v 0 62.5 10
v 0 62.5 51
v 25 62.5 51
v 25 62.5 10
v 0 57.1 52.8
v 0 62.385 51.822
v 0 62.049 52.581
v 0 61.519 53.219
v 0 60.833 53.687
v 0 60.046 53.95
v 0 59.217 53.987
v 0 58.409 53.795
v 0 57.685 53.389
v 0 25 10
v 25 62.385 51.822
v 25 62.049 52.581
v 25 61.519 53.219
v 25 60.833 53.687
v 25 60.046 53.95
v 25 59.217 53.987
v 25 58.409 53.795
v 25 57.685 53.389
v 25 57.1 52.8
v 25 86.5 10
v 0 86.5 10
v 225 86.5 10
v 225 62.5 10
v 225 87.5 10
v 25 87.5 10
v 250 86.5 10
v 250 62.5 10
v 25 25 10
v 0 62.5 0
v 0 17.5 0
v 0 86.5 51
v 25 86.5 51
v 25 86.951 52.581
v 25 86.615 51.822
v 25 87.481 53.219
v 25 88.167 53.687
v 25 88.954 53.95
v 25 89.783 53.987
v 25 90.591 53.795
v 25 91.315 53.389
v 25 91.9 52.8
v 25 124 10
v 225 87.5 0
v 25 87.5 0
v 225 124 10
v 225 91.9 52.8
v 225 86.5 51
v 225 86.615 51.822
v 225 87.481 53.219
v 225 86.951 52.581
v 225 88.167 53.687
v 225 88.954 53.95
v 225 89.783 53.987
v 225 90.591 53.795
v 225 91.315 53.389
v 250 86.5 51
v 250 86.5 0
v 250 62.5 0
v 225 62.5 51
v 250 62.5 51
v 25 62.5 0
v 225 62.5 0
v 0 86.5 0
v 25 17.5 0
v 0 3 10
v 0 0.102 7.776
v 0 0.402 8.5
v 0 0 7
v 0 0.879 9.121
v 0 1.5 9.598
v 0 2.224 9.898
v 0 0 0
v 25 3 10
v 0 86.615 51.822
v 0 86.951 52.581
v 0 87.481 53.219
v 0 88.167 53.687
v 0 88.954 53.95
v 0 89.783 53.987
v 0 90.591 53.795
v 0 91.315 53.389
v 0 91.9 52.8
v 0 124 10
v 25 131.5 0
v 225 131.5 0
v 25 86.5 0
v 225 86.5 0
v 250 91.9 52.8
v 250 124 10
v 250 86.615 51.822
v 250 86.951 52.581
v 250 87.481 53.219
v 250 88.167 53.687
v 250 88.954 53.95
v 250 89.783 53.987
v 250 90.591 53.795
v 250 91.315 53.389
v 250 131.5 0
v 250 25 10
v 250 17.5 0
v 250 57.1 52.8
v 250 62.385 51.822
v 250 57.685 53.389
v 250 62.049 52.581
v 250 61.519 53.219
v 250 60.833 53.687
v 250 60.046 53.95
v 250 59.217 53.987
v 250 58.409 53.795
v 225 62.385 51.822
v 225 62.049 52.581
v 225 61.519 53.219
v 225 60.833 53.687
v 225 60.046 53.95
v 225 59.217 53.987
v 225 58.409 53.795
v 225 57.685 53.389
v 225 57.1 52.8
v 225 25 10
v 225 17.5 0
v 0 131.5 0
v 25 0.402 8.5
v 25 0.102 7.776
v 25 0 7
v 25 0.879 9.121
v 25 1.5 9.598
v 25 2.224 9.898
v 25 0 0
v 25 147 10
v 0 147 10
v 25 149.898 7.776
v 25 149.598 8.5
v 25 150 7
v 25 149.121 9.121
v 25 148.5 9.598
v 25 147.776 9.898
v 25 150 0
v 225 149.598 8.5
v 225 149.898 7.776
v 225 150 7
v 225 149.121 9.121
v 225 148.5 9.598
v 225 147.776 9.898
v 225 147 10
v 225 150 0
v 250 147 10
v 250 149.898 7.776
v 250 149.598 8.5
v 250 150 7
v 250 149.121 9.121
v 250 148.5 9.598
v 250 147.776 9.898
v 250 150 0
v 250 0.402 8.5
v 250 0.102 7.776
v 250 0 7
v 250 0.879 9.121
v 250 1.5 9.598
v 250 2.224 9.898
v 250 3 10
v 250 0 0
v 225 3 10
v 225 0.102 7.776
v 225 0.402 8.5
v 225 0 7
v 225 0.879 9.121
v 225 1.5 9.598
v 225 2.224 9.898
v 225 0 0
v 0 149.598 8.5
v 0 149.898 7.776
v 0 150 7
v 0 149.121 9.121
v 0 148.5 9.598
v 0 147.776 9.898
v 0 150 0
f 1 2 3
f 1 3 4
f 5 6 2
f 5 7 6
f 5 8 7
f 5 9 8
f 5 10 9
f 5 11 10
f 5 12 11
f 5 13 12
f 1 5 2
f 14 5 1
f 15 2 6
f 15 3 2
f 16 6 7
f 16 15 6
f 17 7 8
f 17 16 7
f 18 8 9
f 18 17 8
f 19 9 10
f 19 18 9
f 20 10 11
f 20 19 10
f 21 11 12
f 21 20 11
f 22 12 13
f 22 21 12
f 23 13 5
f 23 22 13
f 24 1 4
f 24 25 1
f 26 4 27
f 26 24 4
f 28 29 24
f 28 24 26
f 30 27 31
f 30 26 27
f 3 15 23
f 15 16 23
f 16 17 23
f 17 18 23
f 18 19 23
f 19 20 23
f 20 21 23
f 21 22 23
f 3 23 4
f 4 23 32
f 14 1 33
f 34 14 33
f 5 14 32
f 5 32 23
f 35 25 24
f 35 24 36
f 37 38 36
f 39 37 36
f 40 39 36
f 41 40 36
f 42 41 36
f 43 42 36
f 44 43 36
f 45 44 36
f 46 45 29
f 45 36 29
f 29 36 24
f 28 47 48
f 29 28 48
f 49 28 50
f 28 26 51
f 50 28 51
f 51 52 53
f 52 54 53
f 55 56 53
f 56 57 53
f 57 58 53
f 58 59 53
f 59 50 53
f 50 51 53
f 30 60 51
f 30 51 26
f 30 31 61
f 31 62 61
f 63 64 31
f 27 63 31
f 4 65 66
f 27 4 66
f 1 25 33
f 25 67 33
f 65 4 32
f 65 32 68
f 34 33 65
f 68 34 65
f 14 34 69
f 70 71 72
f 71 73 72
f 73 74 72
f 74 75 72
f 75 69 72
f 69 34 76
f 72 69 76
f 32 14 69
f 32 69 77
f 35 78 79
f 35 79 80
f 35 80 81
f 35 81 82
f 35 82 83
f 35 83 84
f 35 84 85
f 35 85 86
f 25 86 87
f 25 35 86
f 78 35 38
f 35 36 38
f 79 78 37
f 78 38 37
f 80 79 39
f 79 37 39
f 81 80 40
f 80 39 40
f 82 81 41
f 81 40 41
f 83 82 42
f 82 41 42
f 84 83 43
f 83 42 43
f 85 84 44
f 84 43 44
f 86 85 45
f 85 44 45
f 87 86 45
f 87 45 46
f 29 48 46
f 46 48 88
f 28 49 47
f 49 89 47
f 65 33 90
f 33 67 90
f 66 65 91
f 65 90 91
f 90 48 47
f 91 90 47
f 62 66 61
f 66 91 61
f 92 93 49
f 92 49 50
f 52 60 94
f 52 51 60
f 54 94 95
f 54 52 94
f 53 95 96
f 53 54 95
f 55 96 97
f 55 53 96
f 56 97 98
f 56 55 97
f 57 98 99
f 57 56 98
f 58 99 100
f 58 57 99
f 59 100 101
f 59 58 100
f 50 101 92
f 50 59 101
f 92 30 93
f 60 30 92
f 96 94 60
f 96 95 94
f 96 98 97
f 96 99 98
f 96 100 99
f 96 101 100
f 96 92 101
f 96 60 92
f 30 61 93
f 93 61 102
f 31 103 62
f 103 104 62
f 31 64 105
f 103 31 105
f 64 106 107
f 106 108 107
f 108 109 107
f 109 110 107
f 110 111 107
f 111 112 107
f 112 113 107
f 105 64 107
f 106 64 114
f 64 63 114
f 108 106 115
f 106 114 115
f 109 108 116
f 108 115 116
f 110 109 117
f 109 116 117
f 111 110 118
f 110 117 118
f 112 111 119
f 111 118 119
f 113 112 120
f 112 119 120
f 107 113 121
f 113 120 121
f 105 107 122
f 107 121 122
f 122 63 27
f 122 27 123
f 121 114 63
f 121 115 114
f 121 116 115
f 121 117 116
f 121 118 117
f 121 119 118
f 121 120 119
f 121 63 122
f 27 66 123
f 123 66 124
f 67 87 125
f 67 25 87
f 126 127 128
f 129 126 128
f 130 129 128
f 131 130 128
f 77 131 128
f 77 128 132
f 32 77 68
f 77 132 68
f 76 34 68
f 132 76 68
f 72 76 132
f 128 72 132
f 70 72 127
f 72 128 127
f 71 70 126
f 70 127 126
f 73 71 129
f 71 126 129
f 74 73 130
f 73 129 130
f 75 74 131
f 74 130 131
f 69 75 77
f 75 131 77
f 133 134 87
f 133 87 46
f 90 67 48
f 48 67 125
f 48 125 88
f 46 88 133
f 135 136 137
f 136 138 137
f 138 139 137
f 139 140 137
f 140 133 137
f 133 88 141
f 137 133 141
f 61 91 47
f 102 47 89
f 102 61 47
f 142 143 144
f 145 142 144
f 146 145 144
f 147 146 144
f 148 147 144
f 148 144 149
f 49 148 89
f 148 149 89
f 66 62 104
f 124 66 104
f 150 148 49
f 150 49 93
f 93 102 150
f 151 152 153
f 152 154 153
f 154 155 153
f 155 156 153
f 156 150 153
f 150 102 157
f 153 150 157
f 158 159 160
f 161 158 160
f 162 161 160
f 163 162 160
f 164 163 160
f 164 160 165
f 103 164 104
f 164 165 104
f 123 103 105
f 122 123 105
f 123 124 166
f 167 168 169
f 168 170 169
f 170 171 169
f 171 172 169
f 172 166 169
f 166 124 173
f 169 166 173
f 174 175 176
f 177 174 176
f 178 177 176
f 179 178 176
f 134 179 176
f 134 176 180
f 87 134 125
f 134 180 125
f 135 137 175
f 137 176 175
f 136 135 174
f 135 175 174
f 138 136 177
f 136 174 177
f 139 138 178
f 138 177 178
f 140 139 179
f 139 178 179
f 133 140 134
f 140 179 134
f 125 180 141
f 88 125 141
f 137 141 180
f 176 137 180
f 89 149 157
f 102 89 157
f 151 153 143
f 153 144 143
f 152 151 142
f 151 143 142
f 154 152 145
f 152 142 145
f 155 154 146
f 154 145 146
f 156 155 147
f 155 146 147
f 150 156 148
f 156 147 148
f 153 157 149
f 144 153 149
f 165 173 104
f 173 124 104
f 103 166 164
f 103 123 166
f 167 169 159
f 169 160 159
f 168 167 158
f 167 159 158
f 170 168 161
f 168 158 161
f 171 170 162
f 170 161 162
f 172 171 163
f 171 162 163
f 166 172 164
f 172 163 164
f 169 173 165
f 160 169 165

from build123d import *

# Parameters (mm, degrees)
PAD_DEPTH    = 10
PAD001_DEPTH = 25
PAD002_DEPTH = 25
FILLET_R     = 3
FILLET001_R  = 3
FILLET002_R  = 3
FILLET003_R  = 3
FILLET004_R  = 3
FILLET005_R  = 3
FILLET006_R  = 3
FILLET007_R  = 3


with BuildPart() as part:
    # Sketch → Pad (new body)
    with BuildSketch(Plane.XY):
        Polygon((0, 0), (25, 0), (25, 62.5), (225, 62.5), (225, 0), (250, 0), (250, 150), (225, 150), (225, 87.5), (25, 87.5), (25, 150), (0, 150), align=None)
    extrude(amount=PAD_DEPTH)

    # Sketch001 → Pad001 (join)
    with BuildSketch(Plane.YZ):
        Polygon((17.5, 0), (62.5, 60), (62.5, 0), align=None)
        Polygon((86.5, 0), (86.5, 60), (131.5, 0), align=None)
    extrude(amount=PAD001_DEPTH)

    # Sketch002 (on Face23 of Pad001) → Pad002 (join)
    with BuildSketch(Plane.YZ.offset(250)):
        Polygon((17.5, 0), (62.5, 60), (62.5, 0), align=None)
        Polygon((86.5, 60), (86.5, 0), (131.5, 0), align=None)
    extrude(amount=-PAD002_DEPTH)

    # Fillet
    fillet_edges = [part.edges().sort_by_distance(p)[0] for p in [
        (237.5, 150, 10),
    ]]
    fillet(fillet_edges, radius=FILLET_R)

    # Fillet001
    fillet001_edges = [part.edges().sort_by_distance(p)[0] for p in [
        (12.5, 150, 10),
    ]]
    fillet(fillet001_edges, radius=FILLET001_R)

    # Fillet002
    fillet002_edges = [part.edges().sort_by_distance(p)[0] for p in [
        (237.5, 0, 10),
    ]]
    fillet(fillet002_edges, radius=FILLET002_R)

    # Fillet003
    fillet003_edges = [part.edges().sort_by_distance(p)[0] for p in [
        (12.5, 0, 10),
    ]]
    fillet(fillet003_edges, radius=FILLET003_R)

    # Fillet004
    fillet004_edges = [part.edges().sort_by_distance(p)[0] for p in [
        (237.5, 86.5, 60),
    ]]
    fillet(fillet004_edges, radius=FILLET004_R)

    # Fillet005
    fillet005_edges = [part.edges().sort_by_distance(p)[0] for p in [
        (237.5, 62.5, 60),
    ]]
    fillet(fillet005_edges, radius=FILLET005_R)

    # Fillet006
    fillet006_edges = [part.edges().sort_by_distance(p)[0] for p in [
        (12.5, 86.5, 60),
    ]]
    fillet(fillet006_edges, radius=FILLET006_R)

    # Fillet007
    fillet007_edges = [part.edges().sort_by_distance(p)[0] for p in [
        (12.5, 62.5, 60),
    ]]
    fillet(fillet007_edges, radius=FILLET007_R)


solid = part.part
